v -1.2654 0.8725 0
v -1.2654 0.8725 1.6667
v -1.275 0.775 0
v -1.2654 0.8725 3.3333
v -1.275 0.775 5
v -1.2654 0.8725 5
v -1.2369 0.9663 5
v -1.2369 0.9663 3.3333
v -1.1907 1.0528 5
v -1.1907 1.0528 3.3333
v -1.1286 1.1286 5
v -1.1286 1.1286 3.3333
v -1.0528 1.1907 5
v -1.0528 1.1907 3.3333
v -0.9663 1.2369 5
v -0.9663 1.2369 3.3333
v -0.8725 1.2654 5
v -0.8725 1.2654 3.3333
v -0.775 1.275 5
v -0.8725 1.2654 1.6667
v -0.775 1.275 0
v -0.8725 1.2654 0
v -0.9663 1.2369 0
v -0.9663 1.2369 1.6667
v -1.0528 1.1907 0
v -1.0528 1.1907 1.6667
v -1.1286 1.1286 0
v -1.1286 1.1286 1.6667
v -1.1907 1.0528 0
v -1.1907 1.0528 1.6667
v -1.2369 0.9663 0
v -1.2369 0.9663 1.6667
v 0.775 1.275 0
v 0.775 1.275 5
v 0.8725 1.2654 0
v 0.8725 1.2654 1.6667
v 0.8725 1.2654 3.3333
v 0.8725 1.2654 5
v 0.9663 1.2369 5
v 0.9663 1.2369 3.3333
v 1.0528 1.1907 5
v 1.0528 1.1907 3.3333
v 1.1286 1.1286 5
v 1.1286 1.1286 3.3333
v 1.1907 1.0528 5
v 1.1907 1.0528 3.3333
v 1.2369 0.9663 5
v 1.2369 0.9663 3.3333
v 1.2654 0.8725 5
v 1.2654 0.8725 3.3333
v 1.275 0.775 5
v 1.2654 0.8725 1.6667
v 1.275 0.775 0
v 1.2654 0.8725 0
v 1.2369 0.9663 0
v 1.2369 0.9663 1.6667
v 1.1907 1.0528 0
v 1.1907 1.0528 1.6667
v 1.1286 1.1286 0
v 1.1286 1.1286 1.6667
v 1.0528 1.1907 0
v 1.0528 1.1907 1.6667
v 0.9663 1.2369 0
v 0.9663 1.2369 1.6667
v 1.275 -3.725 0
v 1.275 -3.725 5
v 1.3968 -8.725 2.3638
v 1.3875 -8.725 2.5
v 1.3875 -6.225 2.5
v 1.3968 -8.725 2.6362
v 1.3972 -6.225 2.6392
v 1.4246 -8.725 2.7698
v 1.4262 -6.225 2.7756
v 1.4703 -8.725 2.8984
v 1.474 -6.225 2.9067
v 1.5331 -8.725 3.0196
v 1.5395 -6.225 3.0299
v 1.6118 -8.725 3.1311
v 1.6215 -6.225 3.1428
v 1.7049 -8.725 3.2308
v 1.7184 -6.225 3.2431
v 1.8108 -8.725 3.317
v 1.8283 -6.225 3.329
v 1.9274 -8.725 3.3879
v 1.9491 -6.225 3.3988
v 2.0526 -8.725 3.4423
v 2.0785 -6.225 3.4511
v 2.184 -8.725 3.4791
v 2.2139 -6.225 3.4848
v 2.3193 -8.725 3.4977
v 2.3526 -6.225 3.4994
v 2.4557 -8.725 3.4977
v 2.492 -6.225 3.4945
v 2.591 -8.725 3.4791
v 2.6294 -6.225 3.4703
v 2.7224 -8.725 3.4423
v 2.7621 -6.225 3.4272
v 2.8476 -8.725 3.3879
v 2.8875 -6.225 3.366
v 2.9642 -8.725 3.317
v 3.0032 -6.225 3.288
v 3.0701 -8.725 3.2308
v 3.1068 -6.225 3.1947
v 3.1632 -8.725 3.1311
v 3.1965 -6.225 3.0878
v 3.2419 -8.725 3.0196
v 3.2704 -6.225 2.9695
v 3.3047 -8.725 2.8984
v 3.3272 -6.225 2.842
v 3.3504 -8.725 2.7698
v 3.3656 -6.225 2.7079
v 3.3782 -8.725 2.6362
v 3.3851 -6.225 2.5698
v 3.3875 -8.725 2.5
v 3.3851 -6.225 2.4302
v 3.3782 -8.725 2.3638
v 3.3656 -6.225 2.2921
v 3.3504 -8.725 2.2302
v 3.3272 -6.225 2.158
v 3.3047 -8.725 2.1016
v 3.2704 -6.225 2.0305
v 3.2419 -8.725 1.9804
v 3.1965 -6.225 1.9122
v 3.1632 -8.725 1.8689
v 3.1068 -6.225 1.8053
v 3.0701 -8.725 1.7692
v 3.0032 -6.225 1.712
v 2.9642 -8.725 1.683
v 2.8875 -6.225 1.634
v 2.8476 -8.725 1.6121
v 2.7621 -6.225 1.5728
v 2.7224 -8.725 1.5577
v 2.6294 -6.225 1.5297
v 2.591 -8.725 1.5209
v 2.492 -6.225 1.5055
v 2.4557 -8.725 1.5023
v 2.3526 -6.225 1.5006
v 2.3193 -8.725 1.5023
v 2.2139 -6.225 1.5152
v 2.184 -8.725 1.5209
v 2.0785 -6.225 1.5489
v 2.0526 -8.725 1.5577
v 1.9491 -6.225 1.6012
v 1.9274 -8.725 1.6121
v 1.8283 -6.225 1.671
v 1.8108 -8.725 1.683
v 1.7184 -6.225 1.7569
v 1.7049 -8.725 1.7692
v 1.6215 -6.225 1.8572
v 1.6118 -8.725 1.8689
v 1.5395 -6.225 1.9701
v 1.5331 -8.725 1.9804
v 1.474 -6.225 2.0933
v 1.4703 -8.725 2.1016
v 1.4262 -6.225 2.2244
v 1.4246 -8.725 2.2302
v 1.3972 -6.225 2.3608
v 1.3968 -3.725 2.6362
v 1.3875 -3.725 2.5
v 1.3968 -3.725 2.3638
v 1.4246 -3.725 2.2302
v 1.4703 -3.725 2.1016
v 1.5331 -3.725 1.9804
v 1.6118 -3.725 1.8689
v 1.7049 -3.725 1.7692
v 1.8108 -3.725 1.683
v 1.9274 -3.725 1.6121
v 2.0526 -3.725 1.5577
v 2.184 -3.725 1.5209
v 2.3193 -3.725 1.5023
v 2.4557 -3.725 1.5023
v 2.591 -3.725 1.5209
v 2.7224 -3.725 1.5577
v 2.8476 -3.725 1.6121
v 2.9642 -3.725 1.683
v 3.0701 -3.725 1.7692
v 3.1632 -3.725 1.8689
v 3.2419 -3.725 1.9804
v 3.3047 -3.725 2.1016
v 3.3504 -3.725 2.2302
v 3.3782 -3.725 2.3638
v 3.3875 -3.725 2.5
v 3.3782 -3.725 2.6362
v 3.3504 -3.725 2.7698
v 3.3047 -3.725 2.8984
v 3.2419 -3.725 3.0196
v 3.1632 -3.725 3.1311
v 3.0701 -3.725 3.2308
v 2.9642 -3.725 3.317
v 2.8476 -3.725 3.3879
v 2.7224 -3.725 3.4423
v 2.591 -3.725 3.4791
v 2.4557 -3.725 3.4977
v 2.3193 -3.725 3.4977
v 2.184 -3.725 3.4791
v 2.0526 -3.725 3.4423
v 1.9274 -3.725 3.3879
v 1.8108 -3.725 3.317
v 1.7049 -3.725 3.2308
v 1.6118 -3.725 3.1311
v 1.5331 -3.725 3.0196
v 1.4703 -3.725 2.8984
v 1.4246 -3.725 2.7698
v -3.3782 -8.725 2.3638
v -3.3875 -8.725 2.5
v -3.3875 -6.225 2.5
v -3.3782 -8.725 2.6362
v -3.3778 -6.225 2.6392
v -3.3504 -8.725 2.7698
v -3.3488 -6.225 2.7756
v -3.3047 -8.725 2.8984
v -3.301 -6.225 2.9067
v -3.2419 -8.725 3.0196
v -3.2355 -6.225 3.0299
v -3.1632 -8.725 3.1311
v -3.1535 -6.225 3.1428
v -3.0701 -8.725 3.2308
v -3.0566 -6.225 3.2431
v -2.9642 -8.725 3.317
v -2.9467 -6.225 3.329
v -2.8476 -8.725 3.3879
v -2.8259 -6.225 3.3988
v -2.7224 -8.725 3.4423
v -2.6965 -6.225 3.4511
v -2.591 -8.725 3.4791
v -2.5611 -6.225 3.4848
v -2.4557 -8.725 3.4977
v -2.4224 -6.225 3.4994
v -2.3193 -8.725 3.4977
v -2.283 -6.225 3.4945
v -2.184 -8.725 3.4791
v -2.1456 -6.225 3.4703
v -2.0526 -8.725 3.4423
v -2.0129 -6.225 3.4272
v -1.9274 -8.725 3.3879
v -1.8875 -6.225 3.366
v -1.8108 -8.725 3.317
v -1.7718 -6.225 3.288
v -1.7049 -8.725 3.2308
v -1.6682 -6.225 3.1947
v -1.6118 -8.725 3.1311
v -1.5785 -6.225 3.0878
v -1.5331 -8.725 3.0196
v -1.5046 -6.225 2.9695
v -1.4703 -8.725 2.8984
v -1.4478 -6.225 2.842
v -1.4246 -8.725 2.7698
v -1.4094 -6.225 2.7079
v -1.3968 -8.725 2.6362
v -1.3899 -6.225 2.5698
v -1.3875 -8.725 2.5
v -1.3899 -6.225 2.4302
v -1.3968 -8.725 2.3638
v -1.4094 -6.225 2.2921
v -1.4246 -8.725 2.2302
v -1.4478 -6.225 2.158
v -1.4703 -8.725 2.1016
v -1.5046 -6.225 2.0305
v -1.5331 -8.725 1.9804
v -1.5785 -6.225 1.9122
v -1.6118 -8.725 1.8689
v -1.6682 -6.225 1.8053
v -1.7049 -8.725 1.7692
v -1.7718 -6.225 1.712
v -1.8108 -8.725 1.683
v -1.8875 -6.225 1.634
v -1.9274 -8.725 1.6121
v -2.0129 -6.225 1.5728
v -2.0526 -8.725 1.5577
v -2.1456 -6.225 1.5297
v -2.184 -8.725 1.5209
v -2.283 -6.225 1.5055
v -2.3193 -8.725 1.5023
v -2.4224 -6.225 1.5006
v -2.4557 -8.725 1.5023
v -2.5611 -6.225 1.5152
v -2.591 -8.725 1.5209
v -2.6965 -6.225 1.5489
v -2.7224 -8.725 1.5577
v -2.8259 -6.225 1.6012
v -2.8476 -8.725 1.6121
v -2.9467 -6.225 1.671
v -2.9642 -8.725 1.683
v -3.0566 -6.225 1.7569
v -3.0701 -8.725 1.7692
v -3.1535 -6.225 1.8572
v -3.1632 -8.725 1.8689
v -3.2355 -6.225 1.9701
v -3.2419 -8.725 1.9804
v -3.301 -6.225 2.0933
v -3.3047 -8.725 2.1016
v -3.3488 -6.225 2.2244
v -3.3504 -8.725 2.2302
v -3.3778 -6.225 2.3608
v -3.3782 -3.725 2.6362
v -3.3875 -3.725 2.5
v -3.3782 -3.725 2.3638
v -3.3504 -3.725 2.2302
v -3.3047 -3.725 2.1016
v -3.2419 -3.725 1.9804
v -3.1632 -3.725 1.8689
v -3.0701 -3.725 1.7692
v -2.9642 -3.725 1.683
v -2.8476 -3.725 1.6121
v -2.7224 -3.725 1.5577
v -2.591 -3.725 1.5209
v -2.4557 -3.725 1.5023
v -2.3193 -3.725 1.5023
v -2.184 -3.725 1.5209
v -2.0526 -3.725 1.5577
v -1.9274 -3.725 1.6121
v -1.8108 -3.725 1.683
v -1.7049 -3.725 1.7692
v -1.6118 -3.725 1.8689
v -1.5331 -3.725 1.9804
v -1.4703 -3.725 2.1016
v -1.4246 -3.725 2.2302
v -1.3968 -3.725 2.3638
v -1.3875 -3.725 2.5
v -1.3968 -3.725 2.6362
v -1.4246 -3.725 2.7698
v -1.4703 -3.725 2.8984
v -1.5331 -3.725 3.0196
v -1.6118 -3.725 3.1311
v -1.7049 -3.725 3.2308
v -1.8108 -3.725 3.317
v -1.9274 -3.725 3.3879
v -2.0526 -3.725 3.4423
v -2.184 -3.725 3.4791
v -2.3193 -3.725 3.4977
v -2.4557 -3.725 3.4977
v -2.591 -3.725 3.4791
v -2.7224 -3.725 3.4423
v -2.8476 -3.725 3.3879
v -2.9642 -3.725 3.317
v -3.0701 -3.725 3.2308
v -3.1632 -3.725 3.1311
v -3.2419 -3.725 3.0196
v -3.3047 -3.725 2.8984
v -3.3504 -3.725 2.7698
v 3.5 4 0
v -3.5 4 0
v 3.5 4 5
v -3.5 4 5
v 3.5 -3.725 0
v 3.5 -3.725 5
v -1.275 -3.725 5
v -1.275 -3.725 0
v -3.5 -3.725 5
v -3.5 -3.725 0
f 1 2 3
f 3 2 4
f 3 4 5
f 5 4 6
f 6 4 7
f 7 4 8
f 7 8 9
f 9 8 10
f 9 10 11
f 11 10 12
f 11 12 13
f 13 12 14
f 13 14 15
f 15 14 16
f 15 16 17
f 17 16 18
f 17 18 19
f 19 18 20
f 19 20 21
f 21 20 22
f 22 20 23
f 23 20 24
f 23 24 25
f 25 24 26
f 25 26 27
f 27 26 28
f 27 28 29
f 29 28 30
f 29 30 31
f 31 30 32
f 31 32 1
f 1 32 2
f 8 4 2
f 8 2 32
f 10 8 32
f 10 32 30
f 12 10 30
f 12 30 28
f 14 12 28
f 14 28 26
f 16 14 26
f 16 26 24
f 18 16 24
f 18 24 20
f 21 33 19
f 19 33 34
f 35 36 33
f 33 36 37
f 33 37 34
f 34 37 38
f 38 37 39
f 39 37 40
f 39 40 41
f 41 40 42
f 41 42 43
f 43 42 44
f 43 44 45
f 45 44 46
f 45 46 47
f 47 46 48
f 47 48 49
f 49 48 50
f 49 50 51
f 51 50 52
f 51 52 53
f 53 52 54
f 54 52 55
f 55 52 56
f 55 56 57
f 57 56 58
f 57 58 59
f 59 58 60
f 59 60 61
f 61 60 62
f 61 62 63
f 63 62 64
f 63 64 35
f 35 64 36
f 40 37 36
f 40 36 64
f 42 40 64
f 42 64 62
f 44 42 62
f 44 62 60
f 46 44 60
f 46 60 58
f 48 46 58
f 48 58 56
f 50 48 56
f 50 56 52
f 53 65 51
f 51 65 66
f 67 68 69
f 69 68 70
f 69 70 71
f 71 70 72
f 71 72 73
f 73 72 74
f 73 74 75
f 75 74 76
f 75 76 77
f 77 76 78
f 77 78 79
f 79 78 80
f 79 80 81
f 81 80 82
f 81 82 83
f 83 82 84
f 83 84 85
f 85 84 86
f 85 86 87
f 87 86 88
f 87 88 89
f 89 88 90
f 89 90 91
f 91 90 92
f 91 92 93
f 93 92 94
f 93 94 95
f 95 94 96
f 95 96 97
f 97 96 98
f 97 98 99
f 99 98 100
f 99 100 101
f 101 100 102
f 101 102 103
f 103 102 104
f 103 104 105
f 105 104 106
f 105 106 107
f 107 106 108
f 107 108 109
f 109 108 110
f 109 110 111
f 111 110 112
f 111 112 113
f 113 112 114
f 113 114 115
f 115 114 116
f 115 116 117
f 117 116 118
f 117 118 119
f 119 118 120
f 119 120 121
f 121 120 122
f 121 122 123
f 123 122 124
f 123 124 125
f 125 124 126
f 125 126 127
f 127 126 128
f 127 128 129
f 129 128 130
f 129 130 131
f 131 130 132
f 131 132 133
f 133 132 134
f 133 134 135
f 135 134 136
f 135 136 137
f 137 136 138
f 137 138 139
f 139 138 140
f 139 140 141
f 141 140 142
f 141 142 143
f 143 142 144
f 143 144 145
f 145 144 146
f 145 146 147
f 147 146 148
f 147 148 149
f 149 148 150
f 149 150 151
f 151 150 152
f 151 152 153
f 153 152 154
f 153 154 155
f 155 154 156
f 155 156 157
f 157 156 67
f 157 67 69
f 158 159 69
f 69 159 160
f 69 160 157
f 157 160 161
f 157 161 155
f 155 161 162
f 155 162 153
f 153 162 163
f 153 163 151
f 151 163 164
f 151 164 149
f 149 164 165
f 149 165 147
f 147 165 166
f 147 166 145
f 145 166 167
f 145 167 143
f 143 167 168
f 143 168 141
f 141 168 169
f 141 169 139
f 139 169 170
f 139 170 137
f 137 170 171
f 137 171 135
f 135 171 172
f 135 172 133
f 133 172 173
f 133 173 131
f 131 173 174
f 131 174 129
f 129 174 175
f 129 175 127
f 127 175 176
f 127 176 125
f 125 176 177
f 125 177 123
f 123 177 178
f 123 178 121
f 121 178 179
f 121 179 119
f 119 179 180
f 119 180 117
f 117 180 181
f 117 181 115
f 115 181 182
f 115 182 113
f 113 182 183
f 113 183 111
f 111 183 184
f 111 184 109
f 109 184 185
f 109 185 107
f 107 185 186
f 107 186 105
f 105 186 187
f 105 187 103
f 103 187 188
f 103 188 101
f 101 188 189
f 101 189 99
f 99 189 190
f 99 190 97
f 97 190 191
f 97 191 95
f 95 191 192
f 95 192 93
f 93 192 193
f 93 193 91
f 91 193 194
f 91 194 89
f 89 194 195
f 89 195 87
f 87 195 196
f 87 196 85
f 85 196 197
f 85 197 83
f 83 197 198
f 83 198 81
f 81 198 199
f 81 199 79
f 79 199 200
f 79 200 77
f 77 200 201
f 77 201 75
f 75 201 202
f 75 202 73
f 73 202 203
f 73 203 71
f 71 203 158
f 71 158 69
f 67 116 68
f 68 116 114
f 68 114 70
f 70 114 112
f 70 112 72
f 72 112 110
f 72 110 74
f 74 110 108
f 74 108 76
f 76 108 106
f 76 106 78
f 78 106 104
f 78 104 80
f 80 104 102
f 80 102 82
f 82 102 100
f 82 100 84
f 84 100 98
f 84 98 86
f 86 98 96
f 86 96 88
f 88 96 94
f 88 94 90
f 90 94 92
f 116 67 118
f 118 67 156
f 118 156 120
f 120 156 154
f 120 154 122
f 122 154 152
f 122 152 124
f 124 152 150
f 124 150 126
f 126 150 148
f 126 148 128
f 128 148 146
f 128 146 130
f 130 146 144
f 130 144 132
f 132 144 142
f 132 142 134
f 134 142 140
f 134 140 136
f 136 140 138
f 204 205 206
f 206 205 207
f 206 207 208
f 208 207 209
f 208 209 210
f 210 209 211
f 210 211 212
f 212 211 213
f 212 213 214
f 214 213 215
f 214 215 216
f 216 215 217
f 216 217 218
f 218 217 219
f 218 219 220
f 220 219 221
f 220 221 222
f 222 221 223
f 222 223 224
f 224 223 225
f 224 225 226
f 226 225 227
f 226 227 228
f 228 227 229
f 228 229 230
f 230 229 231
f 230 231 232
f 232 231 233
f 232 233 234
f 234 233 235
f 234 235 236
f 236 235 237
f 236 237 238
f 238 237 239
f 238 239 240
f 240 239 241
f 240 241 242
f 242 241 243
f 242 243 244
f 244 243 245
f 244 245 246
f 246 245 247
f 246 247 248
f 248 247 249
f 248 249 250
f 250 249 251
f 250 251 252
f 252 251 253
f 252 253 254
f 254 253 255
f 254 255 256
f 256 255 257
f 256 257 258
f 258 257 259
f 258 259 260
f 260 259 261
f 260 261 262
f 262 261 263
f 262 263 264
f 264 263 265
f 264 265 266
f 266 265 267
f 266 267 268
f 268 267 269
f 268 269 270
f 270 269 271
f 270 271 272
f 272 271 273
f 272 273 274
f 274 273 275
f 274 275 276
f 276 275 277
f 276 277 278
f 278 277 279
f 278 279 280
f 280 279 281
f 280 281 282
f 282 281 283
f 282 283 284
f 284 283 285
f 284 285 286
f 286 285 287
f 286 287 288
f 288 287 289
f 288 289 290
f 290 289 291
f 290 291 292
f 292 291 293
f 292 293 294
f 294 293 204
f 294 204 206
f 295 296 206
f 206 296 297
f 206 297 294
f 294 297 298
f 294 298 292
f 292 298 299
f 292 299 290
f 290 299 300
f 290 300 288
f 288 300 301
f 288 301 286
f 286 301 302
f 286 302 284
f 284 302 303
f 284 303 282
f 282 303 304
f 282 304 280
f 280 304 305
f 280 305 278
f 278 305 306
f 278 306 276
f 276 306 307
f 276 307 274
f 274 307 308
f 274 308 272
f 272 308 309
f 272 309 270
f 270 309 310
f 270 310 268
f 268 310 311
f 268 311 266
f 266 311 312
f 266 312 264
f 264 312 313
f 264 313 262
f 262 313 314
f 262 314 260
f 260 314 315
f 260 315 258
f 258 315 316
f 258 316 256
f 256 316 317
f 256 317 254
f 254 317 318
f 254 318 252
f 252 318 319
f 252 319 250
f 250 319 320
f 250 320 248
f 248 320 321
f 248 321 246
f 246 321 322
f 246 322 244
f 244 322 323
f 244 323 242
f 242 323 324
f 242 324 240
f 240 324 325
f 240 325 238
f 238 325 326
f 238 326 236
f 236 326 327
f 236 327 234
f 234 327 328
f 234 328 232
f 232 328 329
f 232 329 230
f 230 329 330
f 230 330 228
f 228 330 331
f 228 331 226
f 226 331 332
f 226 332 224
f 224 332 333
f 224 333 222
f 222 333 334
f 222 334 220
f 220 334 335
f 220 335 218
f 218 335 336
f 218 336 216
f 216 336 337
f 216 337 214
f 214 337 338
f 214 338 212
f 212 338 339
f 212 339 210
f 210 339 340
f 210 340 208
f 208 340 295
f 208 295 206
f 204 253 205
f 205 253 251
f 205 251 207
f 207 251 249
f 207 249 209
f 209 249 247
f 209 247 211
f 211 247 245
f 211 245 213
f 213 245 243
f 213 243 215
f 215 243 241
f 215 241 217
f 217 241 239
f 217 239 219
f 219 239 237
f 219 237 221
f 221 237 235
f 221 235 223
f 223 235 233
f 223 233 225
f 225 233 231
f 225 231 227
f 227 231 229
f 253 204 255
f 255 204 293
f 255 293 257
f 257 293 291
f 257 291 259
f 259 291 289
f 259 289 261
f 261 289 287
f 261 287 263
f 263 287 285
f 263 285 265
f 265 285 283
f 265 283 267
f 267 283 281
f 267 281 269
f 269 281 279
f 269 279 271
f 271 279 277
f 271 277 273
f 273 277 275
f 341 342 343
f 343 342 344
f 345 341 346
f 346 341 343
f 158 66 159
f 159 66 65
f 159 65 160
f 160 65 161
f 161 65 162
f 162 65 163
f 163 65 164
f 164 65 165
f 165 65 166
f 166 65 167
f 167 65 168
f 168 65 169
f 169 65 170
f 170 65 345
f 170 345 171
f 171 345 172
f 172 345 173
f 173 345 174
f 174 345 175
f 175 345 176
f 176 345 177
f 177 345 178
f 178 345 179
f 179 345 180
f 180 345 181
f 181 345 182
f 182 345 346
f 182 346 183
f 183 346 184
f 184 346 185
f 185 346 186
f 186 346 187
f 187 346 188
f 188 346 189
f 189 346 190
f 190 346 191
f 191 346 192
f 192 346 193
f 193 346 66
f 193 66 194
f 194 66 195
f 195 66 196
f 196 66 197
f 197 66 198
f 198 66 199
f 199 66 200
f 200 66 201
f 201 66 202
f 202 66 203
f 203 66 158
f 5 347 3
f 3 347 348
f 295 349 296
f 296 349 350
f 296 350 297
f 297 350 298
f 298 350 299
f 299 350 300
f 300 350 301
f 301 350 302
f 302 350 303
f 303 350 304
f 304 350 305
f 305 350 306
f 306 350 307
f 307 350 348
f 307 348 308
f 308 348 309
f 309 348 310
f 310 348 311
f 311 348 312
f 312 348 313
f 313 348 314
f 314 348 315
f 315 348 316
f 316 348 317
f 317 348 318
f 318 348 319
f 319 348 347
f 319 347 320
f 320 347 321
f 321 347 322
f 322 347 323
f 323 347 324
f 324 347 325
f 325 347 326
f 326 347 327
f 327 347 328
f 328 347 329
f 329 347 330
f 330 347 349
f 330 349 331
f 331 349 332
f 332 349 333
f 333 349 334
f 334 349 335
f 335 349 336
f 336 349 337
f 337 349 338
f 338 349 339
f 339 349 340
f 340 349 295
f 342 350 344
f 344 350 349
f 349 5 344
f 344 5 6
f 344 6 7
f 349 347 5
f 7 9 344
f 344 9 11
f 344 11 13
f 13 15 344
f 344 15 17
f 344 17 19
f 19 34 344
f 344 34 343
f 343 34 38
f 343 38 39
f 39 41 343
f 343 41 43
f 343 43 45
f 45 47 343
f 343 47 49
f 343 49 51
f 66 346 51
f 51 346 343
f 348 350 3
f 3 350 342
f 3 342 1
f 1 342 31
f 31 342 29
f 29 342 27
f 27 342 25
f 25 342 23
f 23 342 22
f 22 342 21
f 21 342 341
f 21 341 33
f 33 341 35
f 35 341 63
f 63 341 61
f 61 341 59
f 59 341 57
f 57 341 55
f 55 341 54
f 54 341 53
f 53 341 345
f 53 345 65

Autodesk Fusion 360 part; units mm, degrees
sketch "baza" plane through (0, 0, 0) normal (0, 0, 1) x (1, 0, 0)
  line L0 (1.275, 1.275) -> (-1.275, 1.275)
  line L1 (-1.275, 1.275) -> (-1.275, -1.275)
  line L2 (-1.275, -1.275) -> (1.275, -1.275)
  line L3 (1.275, -1.275) -> (1.275, 1.275)
  line L4 (1.275, 1.275) -> (-1.275, -1.275) construction
  line L5 (-1.275, 1.275) -> (1.275, -1.275) construction
  line L6 (3.5, 0) -> (3.5, -1.275)
  line L7 (-3.5, -1.275) -> (-3.5, 0)
  line L8 (-1.275, -1.275) -> (-3.5, -1.275)
  line L9 (1.275, -1.275) -> (3.5, -1.275)
  line L10 (3.5, 0) -> (3.5, 4)
  line L11 (3.5, 4) -> (-3.5, 4)
  line L12 (-3.5, 4) -> (-3.5, 0)
  line L13 (-1.275, -1.275) -> (-1.275, -3.725)
  line L14 (1.275, -1.275) -> (1.275, -3.725)
  line L15 (1.275, -3.725) -> (3.5, -3.725)
  line L16 (3.5, -3.725) -> (3.5, -1.275)
  line L17 (-3.5, -1.275) -> (-3.5, -3.725)
  line L18 (-3.5, -3.725) -> (-1.275, -3.725)
  line L19 (-1.275, 0.775) -> (1.275, 0.775)
  dimension "d1" = 2.55
  dimension "d4" = 7
  dimension "d11" = 7
  dimension "d12" = 4
  dimension "d16" = 1.275
  dimension "d17" = 2.45
  dimension "d18" = 0.5
extrude "Extrude1" add sketch "baza" along normal blind 5 contours L0 L1 L3 L6 L7 L8 L9 L10 L11 L12 | L9 L14 L15 L16 | L8 L13 L17 L18
sketch "dinti" plane through (0, -3.725, 0) normal (0, -1, 0) x (1, 0, 0)
  line L0 (-3.5, 0) -> (-1.275, 0)
  line L1 (-1.275, 0) -> (-1.275, 5)
  line L2 (-1.275, 5) -> (-3.5, 5)
  line L3 (-3.5, 5) -> (-3.5, 0)
  line L4 (-2.3875, 5) -> (-2.3875, 0) construction
  circle A0 centre (-2.3875, 2.5) radius 1
  line L5 (-1.275, 0) -> (1.275, 0) construction
  line L6 (1.275, 0) -> (1.275, 5) construction
  line L7 (1.275, 5) -> (-1.275, 5) construction
  line L8 (-1.275, 5) -> (-1.275, 0) construction
  line L9 (0, 5) -> (0, 0) construction
  circle A1 centre (2.3875, 2.5) radius 1
  line L10 (-3.5, 0) -> (-1.275, 0)
  line L11 (-1.275, 0) -> (-1.275, 5)
  line L12 (-1.275, 5) -> (-3.5, 5)
  line L13 (-3.5, 5) -> (-3.5, 0)
  dimension "d8" = 2
extrude "Extrude2" add sketch "dinti" along normal blind 5 contours A0 | A1
fillet "Fillet1" radius 0.5 2 edges at (1.275, 1.275, 2.5) (-1.275, 1.275, 2.5)
equation "d17 = 3.725 mm - 1.275 mm"
